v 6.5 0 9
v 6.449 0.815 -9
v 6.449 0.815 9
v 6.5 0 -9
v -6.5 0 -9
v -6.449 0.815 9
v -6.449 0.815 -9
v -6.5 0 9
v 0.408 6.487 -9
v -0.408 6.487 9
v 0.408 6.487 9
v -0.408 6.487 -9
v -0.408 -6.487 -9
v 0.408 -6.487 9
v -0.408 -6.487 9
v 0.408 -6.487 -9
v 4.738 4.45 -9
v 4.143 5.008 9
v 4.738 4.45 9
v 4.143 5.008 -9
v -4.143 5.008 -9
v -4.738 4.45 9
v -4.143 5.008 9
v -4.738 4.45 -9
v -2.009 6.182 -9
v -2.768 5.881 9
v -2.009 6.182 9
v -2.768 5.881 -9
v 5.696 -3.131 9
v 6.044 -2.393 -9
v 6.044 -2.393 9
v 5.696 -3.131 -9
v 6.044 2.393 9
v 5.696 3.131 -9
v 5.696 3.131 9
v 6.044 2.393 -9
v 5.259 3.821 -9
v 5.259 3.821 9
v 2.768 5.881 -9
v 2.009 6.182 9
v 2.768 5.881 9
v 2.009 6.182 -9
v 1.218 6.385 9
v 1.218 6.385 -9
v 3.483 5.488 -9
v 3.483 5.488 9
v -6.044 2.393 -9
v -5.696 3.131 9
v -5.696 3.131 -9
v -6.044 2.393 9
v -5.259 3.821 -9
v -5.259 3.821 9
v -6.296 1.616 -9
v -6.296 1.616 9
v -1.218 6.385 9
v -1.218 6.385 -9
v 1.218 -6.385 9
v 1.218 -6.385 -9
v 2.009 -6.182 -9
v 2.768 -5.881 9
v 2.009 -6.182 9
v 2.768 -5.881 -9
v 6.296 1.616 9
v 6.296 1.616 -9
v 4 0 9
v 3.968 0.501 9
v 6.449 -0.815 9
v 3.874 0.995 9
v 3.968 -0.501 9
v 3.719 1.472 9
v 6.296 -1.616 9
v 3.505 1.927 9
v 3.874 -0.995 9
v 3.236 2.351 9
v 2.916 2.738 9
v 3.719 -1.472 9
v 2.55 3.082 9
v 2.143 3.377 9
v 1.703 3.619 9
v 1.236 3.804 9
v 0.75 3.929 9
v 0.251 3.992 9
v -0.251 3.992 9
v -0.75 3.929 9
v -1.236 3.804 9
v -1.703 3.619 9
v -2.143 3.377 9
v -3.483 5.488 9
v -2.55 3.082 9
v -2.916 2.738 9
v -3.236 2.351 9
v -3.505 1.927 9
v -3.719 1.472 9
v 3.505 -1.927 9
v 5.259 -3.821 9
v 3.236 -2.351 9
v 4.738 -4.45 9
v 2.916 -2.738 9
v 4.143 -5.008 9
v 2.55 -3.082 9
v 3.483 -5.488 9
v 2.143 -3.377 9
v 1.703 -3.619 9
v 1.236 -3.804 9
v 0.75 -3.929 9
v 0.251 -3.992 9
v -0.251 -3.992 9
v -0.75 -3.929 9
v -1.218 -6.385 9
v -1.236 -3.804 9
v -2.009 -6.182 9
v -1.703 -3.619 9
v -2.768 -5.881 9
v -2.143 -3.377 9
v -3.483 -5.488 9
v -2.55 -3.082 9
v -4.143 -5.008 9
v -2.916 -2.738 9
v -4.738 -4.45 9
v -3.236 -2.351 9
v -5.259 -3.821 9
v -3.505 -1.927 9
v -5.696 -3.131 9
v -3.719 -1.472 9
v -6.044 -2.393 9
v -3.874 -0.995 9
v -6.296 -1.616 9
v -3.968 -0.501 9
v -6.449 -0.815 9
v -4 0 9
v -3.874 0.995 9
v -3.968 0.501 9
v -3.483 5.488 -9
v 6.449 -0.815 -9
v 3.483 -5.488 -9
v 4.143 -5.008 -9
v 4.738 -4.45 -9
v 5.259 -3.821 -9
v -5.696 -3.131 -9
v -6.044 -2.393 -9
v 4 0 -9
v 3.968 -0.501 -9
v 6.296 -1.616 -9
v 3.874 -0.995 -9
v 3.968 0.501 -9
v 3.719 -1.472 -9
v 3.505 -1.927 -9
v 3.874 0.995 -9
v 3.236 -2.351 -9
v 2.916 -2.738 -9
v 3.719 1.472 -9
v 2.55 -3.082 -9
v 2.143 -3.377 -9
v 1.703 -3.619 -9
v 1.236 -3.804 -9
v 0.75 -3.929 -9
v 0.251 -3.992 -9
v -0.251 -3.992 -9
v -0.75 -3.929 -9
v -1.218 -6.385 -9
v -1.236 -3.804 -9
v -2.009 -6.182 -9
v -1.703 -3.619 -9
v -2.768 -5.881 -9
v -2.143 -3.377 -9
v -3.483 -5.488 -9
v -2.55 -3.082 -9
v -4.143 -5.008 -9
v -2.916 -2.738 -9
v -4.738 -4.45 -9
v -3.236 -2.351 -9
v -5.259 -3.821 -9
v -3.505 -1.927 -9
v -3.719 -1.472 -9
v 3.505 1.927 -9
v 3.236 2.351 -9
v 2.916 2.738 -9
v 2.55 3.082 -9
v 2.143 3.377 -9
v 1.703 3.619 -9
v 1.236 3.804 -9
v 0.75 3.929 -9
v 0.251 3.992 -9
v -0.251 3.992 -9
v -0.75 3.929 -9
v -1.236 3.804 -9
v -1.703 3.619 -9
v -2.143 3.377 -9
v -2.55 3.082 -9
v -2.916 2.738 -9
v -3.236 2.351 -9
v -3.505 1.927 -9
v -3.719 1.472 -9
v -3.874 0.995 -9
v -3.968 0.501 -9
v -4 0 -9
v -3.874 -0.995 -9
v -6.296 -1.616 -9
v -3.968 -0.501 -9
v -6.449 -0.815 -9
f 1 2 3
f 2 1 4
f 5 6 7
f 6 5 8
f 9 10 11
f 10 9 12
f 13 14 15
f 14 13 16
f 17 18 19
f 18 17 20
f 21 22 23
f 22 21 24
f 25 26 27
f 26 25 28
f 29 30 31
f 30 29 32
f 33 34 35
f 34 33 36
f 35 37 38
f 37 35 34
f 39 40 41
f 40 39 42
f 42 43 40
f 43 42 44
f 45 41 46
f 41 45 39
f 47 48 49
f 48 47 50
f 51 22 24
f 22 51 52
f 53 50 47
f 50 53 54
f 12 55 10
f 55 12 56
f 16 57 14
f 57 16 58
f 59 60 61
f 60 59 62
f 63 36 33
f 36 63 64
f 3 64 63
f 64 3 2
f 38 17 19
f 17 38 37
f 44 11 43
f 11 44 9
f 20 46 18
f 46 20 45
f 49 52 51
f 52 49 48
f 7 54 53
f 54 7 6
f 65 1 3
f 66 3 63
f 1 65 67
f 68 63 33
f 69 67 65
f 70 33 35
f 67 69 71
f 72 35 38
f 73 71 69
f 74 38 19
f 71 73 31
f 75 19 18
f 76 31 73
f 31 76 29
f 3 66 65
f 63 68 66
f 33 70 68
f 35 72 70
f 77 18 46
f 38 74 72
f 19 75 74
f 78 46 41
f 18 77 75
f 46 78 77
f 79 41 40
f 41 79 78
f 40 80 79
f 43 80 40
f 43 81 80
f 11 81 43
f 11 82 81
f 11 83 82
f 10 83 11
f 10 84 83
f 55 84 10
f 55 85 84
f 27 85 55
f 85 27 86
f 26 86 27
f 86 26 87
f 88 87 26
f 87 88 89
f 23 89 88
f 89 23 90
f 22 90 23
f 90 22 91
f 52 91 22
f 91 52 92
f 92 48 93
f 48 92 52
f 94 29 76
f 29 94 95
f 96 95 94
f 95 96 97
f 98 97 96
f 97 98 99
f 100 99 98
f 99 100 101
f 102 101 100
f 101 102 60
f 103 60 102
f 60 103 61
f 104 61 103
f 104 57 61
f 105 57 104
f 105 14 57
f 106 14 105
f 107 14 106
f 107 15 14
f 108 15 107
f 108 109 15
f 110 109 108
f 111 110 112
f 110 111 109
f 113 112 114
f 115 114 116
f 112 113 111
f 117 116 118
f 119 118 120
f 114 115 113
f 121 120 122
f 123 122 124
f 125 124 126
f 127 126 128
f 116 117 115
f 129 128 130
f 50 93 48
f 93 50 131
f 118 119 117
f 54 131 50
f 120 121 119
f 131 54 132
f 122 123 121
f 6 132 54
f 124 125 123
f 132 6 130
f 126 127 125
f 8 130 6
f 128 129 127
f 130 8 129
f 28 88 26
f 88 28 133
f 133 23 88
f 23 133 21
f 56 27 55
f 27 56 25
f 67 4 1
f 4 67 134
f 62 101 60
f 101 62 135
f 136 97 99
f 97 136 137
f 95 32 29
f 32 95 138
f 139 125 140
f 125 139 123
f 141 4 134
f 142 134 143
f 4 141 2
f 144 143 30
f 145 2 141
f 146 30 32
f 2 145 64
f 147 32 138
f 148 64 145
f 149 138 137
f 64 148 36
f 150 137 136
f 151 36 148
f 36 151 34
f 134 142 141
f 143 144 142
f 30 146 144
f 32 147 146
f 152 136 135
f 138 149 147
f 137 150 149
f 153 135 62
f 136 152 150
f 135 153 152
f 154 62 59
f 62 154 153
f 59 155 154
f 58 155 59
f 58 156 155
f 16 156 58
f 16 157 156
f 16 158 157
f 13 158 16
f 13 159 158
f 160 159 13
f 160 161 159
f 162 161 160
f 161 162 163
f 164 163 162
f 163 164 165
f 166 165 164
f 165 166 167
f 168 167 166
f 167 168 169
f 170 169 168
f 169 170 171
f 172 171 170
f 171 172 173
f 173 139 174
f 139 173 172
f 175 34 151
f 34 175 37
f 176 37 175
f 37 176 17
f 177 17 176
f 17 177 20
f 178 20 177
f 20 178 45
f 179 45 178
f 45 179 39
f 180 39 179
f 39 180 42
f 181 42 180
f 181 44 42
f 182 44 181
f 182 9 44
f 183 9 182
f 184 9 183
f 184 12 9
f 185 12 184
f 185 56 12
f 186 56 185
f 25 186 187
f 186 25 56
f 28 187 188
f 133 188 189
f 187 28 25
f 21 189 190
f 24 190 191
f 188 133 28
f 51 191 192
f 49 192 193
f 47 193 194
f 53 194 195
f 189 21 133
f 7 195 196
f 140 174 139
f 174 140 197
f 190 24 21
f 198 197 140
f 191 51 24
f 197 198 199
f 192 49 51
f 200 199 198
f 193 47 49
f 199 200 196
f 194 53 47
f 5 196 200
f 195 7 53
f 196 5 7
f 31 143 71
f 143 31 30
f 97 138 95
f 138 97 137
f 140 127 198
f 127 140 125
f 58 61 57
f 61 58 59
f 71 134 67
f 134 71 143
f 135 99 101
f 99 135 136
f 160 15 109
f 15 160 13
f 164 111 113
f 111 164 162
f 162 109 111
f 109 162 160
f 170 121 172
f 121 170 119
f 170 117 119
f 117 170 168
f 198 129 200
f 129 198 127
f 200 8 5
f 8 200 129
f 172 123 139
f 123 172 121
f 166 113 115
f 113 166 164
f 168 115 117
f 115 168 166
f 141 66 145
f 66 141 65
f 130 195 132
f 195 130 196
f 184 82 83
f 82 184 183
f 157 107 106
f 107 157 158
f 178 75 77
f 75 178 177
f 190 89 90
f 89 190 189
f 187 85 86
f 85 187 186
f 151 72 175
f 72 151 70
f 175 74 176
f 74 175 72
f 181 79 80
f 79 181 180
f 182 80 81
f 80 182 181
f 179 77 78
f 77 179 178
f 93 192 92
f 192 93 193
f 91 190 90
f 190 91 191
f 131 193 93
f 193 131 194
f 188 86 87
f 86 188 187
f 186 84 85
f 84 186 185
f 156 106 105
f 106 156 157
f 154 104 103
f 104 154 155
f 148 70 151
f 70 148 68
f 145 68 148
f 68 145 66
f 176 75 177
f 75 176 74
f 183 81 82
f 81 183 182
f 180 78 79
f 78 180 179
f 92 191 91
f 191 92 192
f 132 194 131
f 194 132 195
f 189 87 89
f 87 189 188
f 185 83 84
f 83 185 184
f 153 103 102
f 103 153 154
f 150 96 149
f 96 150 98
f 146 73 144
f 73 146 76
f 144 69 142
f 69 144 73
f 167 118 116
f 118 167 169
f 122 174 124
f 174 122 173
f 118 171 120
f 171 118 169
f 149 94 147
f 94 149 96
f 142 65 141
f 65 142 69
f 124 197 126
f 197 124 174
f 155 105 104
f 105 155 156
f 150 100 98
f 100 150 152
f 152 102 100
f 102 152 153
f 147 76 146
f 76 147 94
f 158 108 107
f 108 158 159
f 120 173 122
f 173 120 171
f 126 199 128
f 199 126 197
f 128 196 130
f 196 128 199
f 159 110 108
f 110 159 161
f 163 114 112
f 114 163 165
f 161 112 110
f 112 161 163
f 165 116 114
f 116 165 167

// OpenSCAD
$fn = 50;


difference() {
	union() {
		translate(v = [0, 0, -9.0000000000]) {
			cylinder(h = 18, r = 6.5000000000);
		}
	}
	union() {
		translate(v = [0, 0, -100.0000000000]) {
			cylinder(h = 200, r = 4);
		}
	}
}
